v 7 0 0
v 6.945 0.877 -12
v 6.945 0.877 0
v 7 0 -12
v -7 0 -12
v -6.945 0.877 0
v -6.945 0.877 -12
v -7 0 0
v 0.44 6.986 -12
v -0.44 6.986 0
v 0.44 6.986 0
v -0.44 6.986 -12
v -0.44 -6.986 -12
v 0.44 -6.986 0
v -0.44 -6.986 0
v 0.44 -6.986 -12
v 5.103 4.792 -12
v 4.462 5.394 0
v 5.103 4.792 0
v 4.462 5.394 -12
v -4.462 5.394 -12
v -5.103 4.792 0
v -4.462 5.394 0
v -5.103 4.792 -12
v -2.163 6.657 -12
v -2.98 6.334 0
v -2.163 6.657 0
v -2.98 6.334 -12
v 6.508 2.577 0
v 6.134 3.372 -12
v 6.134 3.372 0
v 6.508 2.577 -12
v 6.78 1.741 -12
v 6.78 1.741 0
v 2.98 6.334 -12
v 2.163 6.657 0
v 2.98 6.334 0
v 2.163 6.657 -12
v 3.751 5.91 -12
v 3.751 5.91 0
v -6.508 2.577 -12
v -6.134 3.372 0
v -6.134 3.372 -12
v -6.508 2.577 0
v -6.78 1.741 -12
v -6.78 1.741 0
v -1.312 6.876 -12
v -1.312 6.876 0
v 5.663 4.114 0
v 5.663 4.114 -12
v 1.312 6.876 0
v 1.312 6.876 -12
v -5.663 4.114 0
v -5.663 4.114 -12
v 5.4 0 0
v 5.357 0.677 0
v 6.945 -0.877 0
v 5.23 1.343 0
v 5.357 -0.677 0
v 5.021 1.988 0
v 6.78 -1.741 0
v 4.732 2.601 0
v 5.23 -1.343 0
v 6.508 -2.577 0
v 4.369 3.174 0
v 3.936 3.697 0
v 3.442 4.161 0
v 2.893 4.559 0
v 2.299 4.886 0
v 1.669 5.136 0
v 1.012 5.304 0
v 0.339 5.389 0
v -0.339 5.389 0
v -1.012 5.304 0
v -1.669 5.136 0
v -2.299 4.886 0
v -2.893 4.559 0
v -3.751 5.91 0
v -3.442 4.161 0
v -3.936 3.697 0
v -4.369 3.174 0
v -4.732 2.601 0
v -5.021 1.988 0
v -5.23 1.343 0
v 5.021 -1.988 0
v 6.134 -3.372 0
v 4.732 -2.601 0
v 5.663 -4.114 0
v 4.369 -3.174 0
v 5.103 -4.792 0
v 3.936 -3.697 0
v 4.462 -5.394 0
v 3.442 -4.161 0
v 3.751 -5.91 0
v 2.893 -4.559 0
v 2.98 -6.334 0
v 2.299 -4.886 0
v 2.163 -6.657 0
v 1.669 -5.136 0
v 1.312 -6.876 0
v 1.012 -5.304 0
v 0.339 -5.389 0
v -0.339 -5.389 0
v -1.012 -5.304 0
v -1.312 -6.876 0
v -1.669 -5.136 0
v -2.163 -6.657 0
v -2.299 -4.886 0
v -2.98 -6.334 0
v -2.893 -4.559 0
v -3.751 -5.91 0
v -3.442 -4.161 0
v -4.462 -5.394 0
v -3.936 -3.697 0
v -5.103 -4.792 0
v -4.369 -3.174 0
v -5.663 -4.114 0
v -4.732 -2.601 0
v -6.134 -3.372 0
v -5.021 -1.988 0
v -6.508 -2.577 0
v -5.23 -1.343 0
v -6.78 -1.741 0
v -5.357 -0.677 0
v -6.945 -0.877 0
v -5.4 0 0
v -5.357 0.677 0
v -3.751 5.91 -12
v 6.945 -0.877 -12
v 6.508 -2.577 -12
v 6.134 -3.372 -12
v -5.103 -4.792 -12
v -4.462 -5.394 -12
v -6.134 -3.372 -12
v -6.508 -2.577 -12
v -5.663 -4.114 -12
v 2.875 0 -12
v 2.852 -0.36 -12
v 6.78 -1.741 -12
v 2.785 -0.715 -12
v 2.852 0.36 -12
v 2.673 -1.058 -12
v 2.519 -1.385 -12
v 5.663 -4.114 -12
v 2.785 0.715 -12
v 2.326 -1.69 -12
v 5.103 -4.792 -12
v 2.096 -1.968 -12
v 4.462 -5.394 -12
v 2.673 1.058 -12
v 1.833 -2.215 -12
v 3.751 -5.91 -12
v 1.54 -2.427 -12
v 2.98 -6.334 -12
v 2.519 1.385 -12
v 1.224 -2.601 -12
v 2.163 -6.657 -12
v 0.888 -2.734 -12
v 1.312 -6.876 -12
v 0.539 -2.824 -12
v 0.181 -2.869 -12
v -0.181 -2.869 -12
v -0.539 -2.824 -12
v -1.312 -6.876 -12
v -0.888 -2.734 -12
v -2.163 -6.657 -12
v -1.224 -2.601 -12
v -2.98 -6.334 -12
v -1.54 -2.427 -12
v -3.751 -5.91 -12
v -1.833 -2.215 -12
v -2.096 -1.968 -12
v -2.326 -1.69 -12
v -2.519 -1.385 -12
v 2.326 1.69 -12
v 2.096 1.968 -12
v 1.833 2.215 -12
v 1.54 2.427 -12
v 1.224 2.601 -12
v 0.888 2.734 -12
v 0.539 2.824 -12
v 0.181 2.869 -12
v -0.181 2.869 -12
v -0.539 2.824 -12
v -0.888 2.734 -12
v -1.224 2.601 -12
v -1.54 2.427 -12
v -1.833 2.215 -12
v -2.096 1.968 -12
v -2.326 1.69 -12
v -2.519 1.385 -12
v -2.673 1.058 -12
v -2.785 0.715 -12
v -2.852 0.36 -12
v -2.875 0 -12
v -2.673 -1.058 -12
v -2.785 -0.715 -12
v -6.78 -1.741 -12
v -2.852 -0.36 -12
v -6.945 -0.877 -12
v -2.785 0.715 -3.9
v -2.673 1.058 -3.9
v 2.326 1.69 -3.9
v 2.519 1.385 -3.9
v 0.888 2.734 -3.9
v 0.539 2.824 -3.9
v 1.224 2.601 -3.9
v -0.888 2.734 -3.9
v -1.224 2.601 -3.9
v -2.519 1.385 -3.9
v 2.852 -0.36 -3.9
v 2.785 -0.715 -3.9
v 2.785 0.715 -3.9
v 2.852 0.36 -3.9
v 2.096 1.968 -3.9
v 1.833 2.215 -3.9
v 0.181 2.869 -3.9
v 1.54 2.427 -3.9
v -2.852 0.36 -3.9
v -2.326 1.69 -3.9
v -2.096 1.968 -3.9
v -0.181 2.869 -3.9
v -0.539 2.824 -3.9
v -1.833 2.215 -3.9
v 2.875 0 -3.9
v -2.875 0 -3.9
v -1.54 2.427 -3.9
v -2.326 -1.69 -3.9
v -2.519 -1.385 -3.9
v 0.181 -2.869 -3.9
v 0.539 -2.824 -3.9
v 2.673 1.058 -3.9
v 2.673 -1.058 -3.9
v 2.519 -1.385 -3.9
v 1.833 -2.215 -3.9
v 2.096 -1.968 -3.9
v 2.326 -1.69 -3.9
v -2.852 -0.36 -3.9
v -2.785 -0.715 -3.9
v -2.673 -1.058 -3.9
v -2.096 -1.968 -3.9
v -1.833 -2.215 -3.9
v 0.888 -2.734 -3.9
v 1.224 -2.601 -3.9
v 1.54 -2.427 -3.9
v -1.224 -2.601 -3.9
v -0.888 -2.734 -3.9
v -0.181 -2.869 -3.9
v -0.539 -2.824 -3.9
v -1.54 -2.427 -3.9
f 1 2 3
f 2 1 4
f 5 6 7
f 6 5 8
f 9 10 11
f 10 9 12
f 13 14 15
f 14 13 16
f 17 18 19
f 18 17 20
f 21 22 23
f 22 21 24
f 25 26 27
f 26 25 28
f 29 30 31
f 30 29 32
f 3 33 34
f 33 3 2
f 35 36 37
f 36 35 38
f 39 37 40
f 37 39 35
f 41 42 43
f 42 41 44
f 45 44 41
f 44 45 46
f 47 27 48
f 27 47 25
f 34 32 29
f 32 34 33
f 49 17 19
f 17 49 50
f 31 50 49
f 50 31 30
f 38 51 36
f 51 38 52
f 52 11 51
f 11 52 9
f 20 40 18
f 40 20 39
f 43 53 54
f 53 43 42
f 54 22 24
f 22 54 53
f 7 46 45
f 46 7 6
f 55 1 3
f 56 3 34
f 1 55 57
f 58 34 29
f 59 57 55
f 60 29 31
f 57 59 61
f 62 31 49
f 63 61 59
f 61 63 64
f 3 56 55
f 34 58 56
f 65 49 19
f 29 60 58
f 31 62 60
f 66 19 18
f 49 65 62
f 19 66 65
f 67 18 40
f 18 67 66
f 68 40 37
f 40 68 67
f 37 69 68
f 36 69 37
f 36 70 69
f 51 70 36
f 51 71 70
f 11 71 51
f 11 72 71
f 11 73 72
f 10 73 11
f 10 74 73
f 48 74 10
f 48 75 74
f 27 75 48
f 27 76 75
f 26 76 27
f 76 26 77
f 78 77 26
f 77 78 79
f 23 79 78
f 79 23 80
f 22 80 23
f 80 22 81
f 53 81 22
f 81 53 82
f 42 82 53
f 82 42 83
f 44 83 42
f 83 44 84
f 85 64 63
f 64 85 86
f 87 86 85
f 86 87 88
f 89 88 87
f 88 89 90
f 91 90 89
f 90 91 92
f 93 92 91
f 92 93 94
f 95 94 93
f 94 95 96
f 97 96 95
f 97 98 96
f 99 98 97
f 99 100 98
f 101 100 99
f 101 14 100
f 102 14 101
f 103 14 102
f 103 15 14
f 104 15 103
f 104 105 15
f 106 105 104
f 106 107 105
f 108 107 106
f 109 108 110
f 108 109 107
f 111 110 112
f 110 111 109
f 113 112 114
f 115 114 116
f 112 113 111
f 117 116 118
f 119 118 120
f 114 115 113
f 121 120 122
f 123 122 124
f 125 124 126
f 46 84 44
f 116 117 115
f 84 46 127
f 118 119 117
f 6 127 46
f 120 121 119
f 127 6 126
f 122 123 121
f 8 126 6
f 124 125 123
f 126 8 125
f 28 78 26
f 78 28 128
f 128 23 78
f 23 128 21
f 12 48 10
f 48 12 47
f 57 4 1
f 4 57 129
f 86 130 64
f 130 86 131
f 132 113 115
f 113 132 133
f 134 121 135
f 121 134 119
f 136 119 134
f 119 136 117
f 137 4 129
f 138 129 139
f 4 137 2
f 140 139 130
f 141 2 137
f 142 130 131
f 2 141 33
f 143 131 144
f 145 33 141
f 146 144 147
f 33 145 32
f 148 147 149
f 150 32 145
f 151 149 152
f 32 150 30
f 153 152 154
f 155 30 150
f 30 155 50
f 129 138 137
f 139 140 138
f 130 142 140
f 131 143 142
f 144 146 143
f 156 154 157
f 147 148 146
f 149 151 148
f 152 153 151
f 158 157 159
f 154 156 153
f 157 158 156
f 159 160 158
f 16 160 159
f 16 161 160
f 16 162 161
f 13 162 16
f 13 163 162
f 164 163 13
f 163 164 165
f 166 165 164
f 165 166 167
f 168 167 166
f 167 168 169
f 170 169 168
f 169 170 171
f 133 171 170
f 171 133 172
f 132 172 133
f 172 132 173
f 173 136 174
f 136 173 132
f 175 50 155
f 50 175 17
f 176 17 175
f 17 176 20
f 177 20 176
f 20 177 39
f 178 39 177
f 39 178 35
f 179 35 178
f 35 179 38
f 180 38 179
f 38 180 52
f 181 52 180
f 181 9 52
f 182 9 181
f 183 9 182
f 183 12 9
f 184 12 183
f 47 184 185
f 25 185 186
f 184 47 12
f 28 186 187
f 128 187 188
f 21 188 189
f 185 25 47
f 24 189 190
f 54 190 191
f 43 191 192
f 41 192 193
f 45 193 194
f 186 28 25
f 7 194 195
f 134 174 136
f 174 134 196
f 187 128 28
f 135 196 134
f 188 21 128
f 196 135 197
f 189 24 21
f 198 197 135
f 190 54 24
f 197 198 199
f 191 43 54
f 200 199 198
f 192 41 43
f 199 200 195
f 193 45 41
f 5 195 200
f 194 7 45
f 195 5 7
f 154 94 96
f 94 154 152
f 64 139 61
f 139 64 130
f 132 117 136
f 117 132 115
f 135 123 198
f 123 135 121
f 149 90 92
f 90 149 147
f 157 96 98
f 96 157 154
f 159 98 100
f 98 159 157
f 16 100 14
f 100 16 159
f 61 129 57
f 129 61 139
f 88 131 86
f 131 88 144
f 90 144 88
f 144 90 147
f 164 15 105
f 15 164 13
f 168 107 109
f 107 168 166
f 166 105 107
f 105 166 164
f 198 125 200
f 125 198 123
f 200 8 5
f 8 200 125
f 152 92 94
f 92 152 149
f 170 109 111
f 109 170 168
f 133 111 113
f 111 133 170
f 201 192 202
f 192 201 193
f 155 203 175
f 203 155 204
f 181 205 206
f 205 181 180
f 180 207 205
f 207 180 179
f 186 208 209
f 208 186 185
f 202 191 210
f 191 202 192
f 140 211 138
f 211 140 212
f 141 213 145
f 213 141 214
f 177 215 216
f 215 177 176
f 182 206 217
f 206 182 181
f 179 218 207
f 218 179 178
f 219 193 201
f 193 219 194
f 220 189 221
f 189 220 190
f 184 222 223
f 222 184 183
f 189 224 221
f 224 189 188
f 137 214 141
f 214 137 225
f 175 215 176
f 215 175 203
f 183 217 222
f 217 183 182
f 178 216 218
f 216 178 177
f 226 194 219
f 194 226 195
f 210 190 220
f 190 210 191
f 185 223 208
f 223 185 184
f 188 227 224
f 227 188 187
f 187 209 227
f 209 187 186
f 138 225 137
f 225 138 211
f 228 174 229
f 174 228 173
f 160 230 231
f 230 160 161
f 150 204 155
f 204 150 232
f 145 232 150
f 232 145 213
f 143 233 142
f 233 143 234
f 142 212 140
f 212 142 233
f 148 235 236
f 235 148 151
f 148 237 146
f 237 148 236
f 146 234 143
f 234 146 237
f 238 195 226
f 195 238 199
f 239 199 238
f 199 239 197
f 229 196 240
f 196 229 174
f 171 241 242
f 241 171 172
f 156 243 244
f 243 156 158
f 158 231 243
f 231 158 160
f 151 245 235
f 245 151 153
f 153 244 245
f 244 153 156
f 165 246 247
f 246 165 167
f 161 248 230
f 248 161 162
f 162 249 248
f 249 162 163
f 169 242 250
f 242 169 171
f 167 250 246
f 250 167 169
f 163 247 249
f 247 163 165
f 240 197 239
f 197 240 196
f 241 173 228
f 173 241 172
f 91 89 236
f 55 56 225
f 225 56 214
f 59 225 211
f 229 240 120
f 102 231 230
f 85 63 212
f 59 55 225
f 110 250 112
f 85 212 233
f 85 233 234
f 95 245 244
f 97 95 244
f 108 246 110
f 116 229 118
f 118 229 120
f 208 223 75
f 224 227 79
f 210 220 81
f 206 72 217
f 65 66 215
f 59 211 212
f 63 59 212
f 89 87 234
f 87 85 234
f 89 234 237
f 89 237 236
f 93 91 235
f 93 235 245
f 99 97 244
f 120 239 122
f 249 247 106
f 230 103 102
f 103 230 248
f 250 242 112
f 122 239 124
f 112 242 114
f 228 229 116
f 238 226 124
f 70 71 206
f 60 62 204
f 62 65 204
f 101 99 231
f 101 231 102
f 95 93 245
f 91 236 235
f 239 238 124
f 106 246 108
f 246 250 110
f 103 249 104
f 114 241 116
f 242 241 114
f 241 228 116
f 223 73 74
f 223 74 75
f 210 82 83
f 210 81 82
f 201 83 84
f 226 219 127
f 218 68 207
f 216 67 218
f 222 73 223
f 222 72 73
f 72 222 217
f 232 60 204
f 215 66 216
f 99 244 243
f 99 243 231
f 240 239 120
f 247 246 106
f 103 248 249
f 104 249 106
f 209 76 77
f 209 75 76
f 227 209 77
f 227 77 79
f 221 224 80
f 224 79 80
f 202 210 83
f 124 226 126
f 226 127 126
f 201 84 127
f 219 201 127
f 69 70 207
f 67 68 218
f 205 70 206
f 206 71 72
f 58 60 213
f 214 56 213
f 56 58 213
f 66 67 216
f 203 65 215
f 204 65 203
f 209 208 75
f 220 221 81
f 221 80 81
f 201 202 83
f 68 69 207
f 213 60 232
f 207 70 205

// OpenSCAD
$fn = 50;


difference() {
	union() {
		translate(v = [0, 0, -12.0000000000]) {
			cylinder(h = 12, r = 7.0000000000);
		}
		translate(v = [0, 0, -15.0000000000]) {
			cylinder(h = 15, r = 2.8750000000);
		}
	}
	union() {
		translate(v = [0, 0, 0]) {
			rotate(a = [0, 0, 0]) {
				difference() {
					union() {
						translate(v = [0, 0, -15.0000000000]) {
							cylinder(h = 15, r = 2.6000000000);
						}
						translate(v = [0, 0, -3.9000000000]) {
							cylinder(h = 3.9000000000, r1 = 2.8750000000, r2 = 5.4000000000);
						}
						translate(v = [0, 0, -15.0000000000]) {
							cylinder(h = 15, r = 2.8750000000);
						}
						translate(v = [0, 0, -15.0000000000]) {
							cylinder(h = 15, r = 2.6000000000);
						}
					}
					union();
				}
			}
		}
	}
}
